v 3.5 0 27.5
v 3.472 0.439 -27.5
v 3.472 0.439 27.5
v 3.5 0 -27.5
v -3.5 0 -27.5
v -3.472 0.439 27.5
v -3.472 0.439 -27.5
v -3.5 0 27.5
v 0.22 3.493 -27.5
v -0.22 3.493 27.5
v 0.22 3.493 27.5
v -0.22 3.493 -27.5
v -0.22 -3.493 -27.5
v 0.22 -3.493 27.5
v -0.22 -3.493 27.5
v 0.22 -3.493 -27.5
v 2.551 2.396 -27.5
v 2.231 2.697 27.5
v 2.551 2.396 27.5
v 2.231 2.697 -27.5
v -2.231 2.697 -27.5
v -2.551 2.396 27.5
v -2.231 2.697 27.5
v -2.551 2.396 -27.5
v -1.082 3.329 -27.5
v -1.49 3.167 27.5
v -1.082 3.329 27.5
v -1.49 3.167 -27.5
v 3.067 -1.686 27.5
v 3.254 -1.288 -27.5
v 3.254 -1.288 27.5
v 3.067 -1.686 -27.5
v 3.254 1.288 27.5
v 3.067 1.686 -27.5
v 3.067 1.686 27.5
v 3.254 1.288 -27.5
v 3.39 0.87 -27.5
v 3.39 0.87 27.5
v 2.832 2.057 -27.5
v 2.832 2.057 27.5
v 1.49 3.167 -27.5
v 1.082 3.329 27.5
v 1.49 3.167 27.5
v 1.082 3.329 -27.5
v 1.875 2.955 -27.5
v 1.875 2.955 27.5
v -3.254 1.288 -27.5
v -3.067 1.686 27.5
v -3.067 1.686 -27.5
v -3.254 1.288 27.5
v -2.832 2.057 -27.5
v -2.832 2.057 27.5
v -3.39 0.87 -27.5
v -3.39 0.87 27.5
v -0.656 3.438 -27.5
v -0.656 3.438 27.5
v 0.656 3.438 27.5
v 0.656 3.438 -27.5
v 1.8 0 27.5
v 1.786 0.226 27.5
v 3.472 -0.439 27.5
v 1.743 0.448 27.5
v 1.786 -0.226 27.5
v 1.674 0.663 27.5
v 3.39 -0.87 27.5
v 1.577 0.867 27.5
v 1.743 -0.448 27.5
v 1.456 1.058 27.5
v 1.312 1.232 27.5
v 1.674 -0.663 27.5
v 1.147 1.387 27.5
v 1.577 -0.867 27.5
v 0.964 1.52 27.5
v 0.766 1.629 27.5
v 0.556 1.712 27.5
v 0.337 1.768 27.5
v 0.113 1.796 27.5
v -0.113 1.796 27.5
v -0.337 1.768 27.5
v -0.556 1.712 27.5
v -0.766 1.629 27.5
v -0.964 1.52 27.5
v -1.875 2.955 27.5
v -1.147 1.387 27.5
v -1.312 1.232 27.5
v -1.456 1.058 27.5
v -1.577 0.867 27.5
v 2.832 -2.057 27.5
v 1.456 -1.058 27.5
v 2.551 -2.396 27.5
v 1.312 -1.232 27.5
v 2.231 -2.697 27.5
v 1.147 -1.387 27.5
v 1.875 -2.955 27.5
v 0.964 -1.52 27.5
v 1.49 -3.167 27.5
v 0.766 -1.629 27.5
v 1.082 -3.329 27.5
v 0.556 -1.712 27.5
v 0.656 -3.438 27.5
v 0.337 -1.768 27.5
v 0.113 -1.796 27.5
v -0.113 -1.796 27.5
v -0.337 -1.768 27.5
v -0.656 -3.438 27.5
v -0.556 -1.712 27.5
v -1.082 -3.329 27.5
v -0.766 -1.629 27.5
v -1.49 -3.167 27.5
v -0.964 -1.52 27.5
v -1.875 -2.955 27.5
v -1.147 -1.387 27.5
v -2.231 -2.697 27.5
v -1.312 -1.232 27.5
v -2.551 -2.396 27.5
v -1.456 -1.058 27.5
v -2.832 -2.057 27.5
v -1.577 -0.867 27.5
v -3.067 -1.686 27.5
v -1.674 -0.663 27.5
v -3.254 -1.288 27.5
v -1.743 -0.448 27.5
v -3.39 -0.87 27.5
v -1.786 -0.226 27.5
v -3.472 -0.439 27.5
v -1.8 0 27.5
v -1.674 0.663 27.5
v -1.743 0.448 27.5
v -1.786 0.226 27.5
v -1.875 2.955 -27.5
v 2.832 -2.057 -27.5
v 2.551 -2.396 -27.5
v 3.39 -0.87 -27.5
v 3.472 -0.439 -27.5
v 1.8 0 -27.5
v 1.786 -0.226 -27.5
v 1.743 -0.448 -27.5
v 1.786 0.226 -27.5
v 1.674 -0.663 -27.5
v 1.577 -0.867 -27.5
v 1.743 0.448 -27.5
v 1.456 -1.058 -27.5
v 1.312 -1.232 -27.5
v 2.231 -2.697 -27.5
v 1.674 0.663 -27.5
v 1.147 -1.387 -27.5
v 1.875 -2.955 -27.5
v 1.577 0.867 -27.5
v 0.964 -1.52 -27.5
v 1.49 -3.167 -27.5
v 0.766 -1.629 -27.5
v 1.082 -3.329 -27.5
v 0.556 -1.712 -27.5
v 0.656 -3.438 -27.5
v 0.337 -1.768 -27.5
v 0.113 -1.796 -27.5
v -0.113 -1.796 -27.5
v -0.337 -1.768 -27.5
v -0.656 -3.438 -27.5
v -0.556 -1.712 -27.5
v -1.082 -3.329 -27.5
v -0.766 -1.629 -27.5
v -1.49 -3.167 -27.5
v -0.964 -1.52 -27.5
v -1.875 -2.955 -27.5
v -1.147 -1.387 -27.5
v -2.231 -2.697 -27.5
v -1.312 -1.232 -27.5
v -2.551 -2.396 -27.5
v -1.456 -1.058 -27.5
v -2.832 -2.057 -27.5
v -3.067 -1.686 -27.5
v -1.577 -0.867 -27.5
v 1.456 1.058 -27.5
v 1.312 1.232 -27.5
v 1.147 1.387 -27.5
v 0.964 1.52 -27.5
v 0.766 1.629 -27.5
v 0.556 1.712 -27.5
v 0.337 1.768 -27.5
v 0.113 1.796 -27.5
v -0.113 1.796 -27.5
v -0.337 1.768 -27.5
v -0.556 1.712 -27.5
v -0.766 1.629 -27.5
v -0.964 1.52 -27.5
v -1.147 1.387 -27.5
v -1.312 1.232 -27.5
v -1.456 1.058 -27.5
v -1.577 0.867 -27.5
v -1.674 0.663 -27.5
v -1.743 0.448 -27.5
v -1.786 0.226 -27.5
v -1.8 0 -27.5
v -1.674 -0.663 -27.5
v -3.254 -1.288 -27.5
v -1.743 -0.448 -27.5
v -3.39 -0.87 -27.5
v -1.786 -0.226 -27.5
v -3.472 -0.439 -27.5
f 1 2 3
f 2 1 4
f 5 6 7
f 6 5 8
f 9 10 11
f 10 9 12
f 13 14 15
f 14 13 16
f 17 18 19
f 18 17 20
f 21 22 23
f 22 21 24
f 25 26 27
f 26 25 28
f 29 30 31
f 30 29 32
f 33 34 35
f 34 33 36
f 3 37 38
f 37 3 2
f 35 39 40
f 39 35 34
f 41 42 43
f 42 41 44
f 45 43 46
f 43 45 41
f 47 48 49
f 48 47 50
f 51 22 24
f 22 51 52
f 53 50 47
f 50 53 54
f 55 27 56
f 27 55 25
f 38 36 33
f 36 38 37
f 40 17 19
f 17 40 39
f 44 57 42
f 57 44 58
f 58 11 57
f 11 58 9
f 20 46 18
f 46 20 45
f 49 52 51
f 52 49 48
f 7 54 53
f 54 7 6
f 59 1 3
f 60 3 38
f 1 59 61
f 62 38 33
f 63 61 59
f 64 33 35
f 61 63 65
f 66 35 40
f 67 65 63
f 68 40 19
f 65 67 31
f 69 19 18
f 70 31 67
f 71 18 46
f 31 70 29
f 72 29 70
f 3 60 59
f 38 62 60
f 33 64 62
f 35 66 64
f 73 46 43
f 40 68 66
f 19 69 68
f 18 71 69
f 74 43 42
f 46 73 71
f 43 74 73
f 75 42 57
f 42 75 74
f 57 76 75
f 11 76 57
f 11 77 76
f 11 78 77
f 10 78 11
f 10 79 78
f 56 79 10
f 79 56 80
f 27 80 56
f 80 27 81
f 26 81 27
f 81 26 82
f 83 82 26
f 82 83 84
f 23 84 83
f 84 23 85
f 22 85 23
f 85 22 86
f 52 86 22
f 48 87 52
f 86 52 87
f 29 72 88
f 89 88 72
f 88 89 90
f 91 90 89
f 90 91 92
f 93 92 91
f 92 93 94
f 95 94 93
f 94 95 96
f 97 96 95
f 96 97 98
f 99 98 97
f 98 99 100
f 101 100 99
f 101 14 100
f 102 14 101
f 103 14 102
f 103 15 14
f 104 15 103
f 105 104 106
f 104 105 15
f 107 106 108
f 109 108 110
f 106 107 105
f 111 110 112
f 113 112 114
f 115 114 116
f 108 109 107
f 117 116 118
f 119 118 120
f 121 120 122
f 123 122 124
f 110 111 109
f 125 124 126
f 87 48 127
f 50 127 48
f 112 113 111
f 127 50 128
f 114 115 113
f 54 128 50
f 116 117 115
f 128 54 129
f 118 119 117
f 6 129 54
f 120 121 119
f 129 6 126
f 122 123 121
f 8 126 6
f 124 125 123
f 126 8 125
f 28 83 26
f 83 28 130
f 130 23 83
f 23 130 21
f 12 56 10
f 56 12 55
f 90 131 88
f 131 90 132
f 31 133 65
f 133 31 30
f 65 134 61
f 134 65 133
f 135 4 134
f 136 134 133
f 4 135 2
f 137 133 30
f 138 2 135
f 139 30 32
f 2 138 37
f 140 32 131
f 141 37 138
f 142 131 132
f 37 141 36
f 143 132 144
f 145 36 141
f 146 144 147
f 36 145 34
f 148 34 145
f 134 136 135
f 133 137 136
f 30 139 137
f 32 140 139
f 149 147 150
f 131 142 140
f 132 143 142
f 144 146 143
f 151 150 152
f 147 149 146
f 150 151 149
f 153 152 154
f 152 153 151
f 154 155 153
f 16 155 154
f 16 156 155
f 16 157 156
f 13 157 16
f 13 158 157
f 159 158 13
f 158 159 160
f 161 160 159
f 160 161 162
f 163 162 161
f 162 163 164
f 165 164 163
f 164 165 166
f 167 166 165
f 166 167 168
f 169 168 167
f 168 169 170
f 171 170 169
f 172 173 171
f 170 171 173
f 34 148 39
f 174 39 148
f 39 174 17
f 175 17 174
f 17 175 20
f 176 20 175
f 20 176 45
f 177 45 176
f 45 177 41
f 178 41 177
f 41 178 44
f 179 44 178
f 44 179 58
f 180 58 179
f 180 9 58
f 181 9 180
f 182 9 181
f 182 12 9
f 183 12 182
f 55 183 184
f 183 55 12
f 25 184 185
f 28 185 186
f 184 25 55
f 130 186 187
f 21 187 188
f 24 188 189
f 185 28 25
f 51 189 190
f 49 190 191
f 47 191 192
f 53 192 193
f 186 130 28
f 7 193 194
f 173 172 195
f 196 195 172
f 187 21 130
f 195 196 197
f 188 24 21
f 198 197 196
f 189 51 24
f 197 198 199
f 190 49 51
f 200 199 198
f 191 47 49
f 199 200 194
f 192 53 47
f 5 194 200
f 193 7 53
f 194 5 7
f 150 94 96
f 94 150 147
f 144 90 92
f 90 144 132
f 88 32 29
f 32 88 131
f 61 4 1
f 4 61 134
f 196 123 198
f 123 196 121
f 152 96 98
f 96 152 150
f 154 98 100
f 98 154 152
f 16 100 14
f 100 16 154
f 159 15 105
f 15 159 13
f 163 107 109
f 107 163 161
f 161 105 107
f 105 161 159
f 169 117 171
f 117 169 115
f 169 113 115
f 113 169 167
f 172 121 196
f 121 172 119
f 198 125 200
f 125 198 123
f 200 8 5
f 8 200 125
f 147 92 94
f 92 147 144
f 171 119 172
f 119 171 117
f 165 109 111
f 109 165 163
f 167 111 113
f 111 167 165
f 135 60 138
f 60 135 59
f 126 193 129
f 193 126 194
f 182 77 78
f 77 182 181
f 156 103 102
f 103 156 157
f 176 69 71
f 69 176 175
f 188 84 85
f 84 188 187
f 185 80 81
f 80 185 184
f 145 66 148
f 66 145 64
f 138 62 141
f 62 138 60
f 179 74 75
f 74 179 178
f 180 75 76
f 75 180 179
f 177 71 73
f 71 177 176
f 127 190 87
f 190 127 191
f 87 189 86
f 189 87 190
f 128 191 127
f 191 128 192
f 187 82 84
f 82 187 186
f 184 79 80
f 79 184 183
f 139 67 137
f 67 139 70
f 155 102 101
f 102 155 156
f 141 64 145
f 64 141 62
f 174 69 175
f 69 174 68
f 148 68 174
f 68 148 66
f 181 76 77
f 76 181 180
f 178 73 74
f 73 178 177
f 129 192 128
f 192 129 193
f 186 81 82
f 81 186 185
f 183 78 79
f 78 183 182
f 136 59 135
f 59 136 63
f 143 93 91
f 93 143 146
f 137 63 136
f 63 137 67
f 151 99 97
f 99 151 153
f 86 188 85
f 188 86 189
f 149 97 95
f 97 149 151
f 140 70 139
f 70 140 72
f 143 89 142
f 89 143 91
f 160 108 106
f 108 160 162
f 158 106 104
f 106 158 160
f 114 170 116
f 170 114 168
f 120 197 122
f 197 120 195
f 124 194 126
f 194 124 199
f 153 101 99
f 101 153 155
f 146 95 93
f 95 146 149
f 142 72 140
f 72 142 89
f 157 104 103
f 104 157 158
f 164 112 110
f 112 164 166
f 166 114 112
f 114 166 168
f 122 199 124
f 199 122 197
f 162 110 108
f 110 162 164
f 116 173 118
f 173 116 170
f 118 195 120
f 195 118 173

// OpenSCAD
$fn = 50;


difference() {
	union() {
		translate(v = [0, 0, -27.5000000000]) {
			cylinder(h = 55, r = 3.5000000000);
		}
	}
	union() {
		translate(v = [0, 0, -100.0000000000]) {
			cylinder(h = 200, r = 1.8000000000);
		}
	}
}
